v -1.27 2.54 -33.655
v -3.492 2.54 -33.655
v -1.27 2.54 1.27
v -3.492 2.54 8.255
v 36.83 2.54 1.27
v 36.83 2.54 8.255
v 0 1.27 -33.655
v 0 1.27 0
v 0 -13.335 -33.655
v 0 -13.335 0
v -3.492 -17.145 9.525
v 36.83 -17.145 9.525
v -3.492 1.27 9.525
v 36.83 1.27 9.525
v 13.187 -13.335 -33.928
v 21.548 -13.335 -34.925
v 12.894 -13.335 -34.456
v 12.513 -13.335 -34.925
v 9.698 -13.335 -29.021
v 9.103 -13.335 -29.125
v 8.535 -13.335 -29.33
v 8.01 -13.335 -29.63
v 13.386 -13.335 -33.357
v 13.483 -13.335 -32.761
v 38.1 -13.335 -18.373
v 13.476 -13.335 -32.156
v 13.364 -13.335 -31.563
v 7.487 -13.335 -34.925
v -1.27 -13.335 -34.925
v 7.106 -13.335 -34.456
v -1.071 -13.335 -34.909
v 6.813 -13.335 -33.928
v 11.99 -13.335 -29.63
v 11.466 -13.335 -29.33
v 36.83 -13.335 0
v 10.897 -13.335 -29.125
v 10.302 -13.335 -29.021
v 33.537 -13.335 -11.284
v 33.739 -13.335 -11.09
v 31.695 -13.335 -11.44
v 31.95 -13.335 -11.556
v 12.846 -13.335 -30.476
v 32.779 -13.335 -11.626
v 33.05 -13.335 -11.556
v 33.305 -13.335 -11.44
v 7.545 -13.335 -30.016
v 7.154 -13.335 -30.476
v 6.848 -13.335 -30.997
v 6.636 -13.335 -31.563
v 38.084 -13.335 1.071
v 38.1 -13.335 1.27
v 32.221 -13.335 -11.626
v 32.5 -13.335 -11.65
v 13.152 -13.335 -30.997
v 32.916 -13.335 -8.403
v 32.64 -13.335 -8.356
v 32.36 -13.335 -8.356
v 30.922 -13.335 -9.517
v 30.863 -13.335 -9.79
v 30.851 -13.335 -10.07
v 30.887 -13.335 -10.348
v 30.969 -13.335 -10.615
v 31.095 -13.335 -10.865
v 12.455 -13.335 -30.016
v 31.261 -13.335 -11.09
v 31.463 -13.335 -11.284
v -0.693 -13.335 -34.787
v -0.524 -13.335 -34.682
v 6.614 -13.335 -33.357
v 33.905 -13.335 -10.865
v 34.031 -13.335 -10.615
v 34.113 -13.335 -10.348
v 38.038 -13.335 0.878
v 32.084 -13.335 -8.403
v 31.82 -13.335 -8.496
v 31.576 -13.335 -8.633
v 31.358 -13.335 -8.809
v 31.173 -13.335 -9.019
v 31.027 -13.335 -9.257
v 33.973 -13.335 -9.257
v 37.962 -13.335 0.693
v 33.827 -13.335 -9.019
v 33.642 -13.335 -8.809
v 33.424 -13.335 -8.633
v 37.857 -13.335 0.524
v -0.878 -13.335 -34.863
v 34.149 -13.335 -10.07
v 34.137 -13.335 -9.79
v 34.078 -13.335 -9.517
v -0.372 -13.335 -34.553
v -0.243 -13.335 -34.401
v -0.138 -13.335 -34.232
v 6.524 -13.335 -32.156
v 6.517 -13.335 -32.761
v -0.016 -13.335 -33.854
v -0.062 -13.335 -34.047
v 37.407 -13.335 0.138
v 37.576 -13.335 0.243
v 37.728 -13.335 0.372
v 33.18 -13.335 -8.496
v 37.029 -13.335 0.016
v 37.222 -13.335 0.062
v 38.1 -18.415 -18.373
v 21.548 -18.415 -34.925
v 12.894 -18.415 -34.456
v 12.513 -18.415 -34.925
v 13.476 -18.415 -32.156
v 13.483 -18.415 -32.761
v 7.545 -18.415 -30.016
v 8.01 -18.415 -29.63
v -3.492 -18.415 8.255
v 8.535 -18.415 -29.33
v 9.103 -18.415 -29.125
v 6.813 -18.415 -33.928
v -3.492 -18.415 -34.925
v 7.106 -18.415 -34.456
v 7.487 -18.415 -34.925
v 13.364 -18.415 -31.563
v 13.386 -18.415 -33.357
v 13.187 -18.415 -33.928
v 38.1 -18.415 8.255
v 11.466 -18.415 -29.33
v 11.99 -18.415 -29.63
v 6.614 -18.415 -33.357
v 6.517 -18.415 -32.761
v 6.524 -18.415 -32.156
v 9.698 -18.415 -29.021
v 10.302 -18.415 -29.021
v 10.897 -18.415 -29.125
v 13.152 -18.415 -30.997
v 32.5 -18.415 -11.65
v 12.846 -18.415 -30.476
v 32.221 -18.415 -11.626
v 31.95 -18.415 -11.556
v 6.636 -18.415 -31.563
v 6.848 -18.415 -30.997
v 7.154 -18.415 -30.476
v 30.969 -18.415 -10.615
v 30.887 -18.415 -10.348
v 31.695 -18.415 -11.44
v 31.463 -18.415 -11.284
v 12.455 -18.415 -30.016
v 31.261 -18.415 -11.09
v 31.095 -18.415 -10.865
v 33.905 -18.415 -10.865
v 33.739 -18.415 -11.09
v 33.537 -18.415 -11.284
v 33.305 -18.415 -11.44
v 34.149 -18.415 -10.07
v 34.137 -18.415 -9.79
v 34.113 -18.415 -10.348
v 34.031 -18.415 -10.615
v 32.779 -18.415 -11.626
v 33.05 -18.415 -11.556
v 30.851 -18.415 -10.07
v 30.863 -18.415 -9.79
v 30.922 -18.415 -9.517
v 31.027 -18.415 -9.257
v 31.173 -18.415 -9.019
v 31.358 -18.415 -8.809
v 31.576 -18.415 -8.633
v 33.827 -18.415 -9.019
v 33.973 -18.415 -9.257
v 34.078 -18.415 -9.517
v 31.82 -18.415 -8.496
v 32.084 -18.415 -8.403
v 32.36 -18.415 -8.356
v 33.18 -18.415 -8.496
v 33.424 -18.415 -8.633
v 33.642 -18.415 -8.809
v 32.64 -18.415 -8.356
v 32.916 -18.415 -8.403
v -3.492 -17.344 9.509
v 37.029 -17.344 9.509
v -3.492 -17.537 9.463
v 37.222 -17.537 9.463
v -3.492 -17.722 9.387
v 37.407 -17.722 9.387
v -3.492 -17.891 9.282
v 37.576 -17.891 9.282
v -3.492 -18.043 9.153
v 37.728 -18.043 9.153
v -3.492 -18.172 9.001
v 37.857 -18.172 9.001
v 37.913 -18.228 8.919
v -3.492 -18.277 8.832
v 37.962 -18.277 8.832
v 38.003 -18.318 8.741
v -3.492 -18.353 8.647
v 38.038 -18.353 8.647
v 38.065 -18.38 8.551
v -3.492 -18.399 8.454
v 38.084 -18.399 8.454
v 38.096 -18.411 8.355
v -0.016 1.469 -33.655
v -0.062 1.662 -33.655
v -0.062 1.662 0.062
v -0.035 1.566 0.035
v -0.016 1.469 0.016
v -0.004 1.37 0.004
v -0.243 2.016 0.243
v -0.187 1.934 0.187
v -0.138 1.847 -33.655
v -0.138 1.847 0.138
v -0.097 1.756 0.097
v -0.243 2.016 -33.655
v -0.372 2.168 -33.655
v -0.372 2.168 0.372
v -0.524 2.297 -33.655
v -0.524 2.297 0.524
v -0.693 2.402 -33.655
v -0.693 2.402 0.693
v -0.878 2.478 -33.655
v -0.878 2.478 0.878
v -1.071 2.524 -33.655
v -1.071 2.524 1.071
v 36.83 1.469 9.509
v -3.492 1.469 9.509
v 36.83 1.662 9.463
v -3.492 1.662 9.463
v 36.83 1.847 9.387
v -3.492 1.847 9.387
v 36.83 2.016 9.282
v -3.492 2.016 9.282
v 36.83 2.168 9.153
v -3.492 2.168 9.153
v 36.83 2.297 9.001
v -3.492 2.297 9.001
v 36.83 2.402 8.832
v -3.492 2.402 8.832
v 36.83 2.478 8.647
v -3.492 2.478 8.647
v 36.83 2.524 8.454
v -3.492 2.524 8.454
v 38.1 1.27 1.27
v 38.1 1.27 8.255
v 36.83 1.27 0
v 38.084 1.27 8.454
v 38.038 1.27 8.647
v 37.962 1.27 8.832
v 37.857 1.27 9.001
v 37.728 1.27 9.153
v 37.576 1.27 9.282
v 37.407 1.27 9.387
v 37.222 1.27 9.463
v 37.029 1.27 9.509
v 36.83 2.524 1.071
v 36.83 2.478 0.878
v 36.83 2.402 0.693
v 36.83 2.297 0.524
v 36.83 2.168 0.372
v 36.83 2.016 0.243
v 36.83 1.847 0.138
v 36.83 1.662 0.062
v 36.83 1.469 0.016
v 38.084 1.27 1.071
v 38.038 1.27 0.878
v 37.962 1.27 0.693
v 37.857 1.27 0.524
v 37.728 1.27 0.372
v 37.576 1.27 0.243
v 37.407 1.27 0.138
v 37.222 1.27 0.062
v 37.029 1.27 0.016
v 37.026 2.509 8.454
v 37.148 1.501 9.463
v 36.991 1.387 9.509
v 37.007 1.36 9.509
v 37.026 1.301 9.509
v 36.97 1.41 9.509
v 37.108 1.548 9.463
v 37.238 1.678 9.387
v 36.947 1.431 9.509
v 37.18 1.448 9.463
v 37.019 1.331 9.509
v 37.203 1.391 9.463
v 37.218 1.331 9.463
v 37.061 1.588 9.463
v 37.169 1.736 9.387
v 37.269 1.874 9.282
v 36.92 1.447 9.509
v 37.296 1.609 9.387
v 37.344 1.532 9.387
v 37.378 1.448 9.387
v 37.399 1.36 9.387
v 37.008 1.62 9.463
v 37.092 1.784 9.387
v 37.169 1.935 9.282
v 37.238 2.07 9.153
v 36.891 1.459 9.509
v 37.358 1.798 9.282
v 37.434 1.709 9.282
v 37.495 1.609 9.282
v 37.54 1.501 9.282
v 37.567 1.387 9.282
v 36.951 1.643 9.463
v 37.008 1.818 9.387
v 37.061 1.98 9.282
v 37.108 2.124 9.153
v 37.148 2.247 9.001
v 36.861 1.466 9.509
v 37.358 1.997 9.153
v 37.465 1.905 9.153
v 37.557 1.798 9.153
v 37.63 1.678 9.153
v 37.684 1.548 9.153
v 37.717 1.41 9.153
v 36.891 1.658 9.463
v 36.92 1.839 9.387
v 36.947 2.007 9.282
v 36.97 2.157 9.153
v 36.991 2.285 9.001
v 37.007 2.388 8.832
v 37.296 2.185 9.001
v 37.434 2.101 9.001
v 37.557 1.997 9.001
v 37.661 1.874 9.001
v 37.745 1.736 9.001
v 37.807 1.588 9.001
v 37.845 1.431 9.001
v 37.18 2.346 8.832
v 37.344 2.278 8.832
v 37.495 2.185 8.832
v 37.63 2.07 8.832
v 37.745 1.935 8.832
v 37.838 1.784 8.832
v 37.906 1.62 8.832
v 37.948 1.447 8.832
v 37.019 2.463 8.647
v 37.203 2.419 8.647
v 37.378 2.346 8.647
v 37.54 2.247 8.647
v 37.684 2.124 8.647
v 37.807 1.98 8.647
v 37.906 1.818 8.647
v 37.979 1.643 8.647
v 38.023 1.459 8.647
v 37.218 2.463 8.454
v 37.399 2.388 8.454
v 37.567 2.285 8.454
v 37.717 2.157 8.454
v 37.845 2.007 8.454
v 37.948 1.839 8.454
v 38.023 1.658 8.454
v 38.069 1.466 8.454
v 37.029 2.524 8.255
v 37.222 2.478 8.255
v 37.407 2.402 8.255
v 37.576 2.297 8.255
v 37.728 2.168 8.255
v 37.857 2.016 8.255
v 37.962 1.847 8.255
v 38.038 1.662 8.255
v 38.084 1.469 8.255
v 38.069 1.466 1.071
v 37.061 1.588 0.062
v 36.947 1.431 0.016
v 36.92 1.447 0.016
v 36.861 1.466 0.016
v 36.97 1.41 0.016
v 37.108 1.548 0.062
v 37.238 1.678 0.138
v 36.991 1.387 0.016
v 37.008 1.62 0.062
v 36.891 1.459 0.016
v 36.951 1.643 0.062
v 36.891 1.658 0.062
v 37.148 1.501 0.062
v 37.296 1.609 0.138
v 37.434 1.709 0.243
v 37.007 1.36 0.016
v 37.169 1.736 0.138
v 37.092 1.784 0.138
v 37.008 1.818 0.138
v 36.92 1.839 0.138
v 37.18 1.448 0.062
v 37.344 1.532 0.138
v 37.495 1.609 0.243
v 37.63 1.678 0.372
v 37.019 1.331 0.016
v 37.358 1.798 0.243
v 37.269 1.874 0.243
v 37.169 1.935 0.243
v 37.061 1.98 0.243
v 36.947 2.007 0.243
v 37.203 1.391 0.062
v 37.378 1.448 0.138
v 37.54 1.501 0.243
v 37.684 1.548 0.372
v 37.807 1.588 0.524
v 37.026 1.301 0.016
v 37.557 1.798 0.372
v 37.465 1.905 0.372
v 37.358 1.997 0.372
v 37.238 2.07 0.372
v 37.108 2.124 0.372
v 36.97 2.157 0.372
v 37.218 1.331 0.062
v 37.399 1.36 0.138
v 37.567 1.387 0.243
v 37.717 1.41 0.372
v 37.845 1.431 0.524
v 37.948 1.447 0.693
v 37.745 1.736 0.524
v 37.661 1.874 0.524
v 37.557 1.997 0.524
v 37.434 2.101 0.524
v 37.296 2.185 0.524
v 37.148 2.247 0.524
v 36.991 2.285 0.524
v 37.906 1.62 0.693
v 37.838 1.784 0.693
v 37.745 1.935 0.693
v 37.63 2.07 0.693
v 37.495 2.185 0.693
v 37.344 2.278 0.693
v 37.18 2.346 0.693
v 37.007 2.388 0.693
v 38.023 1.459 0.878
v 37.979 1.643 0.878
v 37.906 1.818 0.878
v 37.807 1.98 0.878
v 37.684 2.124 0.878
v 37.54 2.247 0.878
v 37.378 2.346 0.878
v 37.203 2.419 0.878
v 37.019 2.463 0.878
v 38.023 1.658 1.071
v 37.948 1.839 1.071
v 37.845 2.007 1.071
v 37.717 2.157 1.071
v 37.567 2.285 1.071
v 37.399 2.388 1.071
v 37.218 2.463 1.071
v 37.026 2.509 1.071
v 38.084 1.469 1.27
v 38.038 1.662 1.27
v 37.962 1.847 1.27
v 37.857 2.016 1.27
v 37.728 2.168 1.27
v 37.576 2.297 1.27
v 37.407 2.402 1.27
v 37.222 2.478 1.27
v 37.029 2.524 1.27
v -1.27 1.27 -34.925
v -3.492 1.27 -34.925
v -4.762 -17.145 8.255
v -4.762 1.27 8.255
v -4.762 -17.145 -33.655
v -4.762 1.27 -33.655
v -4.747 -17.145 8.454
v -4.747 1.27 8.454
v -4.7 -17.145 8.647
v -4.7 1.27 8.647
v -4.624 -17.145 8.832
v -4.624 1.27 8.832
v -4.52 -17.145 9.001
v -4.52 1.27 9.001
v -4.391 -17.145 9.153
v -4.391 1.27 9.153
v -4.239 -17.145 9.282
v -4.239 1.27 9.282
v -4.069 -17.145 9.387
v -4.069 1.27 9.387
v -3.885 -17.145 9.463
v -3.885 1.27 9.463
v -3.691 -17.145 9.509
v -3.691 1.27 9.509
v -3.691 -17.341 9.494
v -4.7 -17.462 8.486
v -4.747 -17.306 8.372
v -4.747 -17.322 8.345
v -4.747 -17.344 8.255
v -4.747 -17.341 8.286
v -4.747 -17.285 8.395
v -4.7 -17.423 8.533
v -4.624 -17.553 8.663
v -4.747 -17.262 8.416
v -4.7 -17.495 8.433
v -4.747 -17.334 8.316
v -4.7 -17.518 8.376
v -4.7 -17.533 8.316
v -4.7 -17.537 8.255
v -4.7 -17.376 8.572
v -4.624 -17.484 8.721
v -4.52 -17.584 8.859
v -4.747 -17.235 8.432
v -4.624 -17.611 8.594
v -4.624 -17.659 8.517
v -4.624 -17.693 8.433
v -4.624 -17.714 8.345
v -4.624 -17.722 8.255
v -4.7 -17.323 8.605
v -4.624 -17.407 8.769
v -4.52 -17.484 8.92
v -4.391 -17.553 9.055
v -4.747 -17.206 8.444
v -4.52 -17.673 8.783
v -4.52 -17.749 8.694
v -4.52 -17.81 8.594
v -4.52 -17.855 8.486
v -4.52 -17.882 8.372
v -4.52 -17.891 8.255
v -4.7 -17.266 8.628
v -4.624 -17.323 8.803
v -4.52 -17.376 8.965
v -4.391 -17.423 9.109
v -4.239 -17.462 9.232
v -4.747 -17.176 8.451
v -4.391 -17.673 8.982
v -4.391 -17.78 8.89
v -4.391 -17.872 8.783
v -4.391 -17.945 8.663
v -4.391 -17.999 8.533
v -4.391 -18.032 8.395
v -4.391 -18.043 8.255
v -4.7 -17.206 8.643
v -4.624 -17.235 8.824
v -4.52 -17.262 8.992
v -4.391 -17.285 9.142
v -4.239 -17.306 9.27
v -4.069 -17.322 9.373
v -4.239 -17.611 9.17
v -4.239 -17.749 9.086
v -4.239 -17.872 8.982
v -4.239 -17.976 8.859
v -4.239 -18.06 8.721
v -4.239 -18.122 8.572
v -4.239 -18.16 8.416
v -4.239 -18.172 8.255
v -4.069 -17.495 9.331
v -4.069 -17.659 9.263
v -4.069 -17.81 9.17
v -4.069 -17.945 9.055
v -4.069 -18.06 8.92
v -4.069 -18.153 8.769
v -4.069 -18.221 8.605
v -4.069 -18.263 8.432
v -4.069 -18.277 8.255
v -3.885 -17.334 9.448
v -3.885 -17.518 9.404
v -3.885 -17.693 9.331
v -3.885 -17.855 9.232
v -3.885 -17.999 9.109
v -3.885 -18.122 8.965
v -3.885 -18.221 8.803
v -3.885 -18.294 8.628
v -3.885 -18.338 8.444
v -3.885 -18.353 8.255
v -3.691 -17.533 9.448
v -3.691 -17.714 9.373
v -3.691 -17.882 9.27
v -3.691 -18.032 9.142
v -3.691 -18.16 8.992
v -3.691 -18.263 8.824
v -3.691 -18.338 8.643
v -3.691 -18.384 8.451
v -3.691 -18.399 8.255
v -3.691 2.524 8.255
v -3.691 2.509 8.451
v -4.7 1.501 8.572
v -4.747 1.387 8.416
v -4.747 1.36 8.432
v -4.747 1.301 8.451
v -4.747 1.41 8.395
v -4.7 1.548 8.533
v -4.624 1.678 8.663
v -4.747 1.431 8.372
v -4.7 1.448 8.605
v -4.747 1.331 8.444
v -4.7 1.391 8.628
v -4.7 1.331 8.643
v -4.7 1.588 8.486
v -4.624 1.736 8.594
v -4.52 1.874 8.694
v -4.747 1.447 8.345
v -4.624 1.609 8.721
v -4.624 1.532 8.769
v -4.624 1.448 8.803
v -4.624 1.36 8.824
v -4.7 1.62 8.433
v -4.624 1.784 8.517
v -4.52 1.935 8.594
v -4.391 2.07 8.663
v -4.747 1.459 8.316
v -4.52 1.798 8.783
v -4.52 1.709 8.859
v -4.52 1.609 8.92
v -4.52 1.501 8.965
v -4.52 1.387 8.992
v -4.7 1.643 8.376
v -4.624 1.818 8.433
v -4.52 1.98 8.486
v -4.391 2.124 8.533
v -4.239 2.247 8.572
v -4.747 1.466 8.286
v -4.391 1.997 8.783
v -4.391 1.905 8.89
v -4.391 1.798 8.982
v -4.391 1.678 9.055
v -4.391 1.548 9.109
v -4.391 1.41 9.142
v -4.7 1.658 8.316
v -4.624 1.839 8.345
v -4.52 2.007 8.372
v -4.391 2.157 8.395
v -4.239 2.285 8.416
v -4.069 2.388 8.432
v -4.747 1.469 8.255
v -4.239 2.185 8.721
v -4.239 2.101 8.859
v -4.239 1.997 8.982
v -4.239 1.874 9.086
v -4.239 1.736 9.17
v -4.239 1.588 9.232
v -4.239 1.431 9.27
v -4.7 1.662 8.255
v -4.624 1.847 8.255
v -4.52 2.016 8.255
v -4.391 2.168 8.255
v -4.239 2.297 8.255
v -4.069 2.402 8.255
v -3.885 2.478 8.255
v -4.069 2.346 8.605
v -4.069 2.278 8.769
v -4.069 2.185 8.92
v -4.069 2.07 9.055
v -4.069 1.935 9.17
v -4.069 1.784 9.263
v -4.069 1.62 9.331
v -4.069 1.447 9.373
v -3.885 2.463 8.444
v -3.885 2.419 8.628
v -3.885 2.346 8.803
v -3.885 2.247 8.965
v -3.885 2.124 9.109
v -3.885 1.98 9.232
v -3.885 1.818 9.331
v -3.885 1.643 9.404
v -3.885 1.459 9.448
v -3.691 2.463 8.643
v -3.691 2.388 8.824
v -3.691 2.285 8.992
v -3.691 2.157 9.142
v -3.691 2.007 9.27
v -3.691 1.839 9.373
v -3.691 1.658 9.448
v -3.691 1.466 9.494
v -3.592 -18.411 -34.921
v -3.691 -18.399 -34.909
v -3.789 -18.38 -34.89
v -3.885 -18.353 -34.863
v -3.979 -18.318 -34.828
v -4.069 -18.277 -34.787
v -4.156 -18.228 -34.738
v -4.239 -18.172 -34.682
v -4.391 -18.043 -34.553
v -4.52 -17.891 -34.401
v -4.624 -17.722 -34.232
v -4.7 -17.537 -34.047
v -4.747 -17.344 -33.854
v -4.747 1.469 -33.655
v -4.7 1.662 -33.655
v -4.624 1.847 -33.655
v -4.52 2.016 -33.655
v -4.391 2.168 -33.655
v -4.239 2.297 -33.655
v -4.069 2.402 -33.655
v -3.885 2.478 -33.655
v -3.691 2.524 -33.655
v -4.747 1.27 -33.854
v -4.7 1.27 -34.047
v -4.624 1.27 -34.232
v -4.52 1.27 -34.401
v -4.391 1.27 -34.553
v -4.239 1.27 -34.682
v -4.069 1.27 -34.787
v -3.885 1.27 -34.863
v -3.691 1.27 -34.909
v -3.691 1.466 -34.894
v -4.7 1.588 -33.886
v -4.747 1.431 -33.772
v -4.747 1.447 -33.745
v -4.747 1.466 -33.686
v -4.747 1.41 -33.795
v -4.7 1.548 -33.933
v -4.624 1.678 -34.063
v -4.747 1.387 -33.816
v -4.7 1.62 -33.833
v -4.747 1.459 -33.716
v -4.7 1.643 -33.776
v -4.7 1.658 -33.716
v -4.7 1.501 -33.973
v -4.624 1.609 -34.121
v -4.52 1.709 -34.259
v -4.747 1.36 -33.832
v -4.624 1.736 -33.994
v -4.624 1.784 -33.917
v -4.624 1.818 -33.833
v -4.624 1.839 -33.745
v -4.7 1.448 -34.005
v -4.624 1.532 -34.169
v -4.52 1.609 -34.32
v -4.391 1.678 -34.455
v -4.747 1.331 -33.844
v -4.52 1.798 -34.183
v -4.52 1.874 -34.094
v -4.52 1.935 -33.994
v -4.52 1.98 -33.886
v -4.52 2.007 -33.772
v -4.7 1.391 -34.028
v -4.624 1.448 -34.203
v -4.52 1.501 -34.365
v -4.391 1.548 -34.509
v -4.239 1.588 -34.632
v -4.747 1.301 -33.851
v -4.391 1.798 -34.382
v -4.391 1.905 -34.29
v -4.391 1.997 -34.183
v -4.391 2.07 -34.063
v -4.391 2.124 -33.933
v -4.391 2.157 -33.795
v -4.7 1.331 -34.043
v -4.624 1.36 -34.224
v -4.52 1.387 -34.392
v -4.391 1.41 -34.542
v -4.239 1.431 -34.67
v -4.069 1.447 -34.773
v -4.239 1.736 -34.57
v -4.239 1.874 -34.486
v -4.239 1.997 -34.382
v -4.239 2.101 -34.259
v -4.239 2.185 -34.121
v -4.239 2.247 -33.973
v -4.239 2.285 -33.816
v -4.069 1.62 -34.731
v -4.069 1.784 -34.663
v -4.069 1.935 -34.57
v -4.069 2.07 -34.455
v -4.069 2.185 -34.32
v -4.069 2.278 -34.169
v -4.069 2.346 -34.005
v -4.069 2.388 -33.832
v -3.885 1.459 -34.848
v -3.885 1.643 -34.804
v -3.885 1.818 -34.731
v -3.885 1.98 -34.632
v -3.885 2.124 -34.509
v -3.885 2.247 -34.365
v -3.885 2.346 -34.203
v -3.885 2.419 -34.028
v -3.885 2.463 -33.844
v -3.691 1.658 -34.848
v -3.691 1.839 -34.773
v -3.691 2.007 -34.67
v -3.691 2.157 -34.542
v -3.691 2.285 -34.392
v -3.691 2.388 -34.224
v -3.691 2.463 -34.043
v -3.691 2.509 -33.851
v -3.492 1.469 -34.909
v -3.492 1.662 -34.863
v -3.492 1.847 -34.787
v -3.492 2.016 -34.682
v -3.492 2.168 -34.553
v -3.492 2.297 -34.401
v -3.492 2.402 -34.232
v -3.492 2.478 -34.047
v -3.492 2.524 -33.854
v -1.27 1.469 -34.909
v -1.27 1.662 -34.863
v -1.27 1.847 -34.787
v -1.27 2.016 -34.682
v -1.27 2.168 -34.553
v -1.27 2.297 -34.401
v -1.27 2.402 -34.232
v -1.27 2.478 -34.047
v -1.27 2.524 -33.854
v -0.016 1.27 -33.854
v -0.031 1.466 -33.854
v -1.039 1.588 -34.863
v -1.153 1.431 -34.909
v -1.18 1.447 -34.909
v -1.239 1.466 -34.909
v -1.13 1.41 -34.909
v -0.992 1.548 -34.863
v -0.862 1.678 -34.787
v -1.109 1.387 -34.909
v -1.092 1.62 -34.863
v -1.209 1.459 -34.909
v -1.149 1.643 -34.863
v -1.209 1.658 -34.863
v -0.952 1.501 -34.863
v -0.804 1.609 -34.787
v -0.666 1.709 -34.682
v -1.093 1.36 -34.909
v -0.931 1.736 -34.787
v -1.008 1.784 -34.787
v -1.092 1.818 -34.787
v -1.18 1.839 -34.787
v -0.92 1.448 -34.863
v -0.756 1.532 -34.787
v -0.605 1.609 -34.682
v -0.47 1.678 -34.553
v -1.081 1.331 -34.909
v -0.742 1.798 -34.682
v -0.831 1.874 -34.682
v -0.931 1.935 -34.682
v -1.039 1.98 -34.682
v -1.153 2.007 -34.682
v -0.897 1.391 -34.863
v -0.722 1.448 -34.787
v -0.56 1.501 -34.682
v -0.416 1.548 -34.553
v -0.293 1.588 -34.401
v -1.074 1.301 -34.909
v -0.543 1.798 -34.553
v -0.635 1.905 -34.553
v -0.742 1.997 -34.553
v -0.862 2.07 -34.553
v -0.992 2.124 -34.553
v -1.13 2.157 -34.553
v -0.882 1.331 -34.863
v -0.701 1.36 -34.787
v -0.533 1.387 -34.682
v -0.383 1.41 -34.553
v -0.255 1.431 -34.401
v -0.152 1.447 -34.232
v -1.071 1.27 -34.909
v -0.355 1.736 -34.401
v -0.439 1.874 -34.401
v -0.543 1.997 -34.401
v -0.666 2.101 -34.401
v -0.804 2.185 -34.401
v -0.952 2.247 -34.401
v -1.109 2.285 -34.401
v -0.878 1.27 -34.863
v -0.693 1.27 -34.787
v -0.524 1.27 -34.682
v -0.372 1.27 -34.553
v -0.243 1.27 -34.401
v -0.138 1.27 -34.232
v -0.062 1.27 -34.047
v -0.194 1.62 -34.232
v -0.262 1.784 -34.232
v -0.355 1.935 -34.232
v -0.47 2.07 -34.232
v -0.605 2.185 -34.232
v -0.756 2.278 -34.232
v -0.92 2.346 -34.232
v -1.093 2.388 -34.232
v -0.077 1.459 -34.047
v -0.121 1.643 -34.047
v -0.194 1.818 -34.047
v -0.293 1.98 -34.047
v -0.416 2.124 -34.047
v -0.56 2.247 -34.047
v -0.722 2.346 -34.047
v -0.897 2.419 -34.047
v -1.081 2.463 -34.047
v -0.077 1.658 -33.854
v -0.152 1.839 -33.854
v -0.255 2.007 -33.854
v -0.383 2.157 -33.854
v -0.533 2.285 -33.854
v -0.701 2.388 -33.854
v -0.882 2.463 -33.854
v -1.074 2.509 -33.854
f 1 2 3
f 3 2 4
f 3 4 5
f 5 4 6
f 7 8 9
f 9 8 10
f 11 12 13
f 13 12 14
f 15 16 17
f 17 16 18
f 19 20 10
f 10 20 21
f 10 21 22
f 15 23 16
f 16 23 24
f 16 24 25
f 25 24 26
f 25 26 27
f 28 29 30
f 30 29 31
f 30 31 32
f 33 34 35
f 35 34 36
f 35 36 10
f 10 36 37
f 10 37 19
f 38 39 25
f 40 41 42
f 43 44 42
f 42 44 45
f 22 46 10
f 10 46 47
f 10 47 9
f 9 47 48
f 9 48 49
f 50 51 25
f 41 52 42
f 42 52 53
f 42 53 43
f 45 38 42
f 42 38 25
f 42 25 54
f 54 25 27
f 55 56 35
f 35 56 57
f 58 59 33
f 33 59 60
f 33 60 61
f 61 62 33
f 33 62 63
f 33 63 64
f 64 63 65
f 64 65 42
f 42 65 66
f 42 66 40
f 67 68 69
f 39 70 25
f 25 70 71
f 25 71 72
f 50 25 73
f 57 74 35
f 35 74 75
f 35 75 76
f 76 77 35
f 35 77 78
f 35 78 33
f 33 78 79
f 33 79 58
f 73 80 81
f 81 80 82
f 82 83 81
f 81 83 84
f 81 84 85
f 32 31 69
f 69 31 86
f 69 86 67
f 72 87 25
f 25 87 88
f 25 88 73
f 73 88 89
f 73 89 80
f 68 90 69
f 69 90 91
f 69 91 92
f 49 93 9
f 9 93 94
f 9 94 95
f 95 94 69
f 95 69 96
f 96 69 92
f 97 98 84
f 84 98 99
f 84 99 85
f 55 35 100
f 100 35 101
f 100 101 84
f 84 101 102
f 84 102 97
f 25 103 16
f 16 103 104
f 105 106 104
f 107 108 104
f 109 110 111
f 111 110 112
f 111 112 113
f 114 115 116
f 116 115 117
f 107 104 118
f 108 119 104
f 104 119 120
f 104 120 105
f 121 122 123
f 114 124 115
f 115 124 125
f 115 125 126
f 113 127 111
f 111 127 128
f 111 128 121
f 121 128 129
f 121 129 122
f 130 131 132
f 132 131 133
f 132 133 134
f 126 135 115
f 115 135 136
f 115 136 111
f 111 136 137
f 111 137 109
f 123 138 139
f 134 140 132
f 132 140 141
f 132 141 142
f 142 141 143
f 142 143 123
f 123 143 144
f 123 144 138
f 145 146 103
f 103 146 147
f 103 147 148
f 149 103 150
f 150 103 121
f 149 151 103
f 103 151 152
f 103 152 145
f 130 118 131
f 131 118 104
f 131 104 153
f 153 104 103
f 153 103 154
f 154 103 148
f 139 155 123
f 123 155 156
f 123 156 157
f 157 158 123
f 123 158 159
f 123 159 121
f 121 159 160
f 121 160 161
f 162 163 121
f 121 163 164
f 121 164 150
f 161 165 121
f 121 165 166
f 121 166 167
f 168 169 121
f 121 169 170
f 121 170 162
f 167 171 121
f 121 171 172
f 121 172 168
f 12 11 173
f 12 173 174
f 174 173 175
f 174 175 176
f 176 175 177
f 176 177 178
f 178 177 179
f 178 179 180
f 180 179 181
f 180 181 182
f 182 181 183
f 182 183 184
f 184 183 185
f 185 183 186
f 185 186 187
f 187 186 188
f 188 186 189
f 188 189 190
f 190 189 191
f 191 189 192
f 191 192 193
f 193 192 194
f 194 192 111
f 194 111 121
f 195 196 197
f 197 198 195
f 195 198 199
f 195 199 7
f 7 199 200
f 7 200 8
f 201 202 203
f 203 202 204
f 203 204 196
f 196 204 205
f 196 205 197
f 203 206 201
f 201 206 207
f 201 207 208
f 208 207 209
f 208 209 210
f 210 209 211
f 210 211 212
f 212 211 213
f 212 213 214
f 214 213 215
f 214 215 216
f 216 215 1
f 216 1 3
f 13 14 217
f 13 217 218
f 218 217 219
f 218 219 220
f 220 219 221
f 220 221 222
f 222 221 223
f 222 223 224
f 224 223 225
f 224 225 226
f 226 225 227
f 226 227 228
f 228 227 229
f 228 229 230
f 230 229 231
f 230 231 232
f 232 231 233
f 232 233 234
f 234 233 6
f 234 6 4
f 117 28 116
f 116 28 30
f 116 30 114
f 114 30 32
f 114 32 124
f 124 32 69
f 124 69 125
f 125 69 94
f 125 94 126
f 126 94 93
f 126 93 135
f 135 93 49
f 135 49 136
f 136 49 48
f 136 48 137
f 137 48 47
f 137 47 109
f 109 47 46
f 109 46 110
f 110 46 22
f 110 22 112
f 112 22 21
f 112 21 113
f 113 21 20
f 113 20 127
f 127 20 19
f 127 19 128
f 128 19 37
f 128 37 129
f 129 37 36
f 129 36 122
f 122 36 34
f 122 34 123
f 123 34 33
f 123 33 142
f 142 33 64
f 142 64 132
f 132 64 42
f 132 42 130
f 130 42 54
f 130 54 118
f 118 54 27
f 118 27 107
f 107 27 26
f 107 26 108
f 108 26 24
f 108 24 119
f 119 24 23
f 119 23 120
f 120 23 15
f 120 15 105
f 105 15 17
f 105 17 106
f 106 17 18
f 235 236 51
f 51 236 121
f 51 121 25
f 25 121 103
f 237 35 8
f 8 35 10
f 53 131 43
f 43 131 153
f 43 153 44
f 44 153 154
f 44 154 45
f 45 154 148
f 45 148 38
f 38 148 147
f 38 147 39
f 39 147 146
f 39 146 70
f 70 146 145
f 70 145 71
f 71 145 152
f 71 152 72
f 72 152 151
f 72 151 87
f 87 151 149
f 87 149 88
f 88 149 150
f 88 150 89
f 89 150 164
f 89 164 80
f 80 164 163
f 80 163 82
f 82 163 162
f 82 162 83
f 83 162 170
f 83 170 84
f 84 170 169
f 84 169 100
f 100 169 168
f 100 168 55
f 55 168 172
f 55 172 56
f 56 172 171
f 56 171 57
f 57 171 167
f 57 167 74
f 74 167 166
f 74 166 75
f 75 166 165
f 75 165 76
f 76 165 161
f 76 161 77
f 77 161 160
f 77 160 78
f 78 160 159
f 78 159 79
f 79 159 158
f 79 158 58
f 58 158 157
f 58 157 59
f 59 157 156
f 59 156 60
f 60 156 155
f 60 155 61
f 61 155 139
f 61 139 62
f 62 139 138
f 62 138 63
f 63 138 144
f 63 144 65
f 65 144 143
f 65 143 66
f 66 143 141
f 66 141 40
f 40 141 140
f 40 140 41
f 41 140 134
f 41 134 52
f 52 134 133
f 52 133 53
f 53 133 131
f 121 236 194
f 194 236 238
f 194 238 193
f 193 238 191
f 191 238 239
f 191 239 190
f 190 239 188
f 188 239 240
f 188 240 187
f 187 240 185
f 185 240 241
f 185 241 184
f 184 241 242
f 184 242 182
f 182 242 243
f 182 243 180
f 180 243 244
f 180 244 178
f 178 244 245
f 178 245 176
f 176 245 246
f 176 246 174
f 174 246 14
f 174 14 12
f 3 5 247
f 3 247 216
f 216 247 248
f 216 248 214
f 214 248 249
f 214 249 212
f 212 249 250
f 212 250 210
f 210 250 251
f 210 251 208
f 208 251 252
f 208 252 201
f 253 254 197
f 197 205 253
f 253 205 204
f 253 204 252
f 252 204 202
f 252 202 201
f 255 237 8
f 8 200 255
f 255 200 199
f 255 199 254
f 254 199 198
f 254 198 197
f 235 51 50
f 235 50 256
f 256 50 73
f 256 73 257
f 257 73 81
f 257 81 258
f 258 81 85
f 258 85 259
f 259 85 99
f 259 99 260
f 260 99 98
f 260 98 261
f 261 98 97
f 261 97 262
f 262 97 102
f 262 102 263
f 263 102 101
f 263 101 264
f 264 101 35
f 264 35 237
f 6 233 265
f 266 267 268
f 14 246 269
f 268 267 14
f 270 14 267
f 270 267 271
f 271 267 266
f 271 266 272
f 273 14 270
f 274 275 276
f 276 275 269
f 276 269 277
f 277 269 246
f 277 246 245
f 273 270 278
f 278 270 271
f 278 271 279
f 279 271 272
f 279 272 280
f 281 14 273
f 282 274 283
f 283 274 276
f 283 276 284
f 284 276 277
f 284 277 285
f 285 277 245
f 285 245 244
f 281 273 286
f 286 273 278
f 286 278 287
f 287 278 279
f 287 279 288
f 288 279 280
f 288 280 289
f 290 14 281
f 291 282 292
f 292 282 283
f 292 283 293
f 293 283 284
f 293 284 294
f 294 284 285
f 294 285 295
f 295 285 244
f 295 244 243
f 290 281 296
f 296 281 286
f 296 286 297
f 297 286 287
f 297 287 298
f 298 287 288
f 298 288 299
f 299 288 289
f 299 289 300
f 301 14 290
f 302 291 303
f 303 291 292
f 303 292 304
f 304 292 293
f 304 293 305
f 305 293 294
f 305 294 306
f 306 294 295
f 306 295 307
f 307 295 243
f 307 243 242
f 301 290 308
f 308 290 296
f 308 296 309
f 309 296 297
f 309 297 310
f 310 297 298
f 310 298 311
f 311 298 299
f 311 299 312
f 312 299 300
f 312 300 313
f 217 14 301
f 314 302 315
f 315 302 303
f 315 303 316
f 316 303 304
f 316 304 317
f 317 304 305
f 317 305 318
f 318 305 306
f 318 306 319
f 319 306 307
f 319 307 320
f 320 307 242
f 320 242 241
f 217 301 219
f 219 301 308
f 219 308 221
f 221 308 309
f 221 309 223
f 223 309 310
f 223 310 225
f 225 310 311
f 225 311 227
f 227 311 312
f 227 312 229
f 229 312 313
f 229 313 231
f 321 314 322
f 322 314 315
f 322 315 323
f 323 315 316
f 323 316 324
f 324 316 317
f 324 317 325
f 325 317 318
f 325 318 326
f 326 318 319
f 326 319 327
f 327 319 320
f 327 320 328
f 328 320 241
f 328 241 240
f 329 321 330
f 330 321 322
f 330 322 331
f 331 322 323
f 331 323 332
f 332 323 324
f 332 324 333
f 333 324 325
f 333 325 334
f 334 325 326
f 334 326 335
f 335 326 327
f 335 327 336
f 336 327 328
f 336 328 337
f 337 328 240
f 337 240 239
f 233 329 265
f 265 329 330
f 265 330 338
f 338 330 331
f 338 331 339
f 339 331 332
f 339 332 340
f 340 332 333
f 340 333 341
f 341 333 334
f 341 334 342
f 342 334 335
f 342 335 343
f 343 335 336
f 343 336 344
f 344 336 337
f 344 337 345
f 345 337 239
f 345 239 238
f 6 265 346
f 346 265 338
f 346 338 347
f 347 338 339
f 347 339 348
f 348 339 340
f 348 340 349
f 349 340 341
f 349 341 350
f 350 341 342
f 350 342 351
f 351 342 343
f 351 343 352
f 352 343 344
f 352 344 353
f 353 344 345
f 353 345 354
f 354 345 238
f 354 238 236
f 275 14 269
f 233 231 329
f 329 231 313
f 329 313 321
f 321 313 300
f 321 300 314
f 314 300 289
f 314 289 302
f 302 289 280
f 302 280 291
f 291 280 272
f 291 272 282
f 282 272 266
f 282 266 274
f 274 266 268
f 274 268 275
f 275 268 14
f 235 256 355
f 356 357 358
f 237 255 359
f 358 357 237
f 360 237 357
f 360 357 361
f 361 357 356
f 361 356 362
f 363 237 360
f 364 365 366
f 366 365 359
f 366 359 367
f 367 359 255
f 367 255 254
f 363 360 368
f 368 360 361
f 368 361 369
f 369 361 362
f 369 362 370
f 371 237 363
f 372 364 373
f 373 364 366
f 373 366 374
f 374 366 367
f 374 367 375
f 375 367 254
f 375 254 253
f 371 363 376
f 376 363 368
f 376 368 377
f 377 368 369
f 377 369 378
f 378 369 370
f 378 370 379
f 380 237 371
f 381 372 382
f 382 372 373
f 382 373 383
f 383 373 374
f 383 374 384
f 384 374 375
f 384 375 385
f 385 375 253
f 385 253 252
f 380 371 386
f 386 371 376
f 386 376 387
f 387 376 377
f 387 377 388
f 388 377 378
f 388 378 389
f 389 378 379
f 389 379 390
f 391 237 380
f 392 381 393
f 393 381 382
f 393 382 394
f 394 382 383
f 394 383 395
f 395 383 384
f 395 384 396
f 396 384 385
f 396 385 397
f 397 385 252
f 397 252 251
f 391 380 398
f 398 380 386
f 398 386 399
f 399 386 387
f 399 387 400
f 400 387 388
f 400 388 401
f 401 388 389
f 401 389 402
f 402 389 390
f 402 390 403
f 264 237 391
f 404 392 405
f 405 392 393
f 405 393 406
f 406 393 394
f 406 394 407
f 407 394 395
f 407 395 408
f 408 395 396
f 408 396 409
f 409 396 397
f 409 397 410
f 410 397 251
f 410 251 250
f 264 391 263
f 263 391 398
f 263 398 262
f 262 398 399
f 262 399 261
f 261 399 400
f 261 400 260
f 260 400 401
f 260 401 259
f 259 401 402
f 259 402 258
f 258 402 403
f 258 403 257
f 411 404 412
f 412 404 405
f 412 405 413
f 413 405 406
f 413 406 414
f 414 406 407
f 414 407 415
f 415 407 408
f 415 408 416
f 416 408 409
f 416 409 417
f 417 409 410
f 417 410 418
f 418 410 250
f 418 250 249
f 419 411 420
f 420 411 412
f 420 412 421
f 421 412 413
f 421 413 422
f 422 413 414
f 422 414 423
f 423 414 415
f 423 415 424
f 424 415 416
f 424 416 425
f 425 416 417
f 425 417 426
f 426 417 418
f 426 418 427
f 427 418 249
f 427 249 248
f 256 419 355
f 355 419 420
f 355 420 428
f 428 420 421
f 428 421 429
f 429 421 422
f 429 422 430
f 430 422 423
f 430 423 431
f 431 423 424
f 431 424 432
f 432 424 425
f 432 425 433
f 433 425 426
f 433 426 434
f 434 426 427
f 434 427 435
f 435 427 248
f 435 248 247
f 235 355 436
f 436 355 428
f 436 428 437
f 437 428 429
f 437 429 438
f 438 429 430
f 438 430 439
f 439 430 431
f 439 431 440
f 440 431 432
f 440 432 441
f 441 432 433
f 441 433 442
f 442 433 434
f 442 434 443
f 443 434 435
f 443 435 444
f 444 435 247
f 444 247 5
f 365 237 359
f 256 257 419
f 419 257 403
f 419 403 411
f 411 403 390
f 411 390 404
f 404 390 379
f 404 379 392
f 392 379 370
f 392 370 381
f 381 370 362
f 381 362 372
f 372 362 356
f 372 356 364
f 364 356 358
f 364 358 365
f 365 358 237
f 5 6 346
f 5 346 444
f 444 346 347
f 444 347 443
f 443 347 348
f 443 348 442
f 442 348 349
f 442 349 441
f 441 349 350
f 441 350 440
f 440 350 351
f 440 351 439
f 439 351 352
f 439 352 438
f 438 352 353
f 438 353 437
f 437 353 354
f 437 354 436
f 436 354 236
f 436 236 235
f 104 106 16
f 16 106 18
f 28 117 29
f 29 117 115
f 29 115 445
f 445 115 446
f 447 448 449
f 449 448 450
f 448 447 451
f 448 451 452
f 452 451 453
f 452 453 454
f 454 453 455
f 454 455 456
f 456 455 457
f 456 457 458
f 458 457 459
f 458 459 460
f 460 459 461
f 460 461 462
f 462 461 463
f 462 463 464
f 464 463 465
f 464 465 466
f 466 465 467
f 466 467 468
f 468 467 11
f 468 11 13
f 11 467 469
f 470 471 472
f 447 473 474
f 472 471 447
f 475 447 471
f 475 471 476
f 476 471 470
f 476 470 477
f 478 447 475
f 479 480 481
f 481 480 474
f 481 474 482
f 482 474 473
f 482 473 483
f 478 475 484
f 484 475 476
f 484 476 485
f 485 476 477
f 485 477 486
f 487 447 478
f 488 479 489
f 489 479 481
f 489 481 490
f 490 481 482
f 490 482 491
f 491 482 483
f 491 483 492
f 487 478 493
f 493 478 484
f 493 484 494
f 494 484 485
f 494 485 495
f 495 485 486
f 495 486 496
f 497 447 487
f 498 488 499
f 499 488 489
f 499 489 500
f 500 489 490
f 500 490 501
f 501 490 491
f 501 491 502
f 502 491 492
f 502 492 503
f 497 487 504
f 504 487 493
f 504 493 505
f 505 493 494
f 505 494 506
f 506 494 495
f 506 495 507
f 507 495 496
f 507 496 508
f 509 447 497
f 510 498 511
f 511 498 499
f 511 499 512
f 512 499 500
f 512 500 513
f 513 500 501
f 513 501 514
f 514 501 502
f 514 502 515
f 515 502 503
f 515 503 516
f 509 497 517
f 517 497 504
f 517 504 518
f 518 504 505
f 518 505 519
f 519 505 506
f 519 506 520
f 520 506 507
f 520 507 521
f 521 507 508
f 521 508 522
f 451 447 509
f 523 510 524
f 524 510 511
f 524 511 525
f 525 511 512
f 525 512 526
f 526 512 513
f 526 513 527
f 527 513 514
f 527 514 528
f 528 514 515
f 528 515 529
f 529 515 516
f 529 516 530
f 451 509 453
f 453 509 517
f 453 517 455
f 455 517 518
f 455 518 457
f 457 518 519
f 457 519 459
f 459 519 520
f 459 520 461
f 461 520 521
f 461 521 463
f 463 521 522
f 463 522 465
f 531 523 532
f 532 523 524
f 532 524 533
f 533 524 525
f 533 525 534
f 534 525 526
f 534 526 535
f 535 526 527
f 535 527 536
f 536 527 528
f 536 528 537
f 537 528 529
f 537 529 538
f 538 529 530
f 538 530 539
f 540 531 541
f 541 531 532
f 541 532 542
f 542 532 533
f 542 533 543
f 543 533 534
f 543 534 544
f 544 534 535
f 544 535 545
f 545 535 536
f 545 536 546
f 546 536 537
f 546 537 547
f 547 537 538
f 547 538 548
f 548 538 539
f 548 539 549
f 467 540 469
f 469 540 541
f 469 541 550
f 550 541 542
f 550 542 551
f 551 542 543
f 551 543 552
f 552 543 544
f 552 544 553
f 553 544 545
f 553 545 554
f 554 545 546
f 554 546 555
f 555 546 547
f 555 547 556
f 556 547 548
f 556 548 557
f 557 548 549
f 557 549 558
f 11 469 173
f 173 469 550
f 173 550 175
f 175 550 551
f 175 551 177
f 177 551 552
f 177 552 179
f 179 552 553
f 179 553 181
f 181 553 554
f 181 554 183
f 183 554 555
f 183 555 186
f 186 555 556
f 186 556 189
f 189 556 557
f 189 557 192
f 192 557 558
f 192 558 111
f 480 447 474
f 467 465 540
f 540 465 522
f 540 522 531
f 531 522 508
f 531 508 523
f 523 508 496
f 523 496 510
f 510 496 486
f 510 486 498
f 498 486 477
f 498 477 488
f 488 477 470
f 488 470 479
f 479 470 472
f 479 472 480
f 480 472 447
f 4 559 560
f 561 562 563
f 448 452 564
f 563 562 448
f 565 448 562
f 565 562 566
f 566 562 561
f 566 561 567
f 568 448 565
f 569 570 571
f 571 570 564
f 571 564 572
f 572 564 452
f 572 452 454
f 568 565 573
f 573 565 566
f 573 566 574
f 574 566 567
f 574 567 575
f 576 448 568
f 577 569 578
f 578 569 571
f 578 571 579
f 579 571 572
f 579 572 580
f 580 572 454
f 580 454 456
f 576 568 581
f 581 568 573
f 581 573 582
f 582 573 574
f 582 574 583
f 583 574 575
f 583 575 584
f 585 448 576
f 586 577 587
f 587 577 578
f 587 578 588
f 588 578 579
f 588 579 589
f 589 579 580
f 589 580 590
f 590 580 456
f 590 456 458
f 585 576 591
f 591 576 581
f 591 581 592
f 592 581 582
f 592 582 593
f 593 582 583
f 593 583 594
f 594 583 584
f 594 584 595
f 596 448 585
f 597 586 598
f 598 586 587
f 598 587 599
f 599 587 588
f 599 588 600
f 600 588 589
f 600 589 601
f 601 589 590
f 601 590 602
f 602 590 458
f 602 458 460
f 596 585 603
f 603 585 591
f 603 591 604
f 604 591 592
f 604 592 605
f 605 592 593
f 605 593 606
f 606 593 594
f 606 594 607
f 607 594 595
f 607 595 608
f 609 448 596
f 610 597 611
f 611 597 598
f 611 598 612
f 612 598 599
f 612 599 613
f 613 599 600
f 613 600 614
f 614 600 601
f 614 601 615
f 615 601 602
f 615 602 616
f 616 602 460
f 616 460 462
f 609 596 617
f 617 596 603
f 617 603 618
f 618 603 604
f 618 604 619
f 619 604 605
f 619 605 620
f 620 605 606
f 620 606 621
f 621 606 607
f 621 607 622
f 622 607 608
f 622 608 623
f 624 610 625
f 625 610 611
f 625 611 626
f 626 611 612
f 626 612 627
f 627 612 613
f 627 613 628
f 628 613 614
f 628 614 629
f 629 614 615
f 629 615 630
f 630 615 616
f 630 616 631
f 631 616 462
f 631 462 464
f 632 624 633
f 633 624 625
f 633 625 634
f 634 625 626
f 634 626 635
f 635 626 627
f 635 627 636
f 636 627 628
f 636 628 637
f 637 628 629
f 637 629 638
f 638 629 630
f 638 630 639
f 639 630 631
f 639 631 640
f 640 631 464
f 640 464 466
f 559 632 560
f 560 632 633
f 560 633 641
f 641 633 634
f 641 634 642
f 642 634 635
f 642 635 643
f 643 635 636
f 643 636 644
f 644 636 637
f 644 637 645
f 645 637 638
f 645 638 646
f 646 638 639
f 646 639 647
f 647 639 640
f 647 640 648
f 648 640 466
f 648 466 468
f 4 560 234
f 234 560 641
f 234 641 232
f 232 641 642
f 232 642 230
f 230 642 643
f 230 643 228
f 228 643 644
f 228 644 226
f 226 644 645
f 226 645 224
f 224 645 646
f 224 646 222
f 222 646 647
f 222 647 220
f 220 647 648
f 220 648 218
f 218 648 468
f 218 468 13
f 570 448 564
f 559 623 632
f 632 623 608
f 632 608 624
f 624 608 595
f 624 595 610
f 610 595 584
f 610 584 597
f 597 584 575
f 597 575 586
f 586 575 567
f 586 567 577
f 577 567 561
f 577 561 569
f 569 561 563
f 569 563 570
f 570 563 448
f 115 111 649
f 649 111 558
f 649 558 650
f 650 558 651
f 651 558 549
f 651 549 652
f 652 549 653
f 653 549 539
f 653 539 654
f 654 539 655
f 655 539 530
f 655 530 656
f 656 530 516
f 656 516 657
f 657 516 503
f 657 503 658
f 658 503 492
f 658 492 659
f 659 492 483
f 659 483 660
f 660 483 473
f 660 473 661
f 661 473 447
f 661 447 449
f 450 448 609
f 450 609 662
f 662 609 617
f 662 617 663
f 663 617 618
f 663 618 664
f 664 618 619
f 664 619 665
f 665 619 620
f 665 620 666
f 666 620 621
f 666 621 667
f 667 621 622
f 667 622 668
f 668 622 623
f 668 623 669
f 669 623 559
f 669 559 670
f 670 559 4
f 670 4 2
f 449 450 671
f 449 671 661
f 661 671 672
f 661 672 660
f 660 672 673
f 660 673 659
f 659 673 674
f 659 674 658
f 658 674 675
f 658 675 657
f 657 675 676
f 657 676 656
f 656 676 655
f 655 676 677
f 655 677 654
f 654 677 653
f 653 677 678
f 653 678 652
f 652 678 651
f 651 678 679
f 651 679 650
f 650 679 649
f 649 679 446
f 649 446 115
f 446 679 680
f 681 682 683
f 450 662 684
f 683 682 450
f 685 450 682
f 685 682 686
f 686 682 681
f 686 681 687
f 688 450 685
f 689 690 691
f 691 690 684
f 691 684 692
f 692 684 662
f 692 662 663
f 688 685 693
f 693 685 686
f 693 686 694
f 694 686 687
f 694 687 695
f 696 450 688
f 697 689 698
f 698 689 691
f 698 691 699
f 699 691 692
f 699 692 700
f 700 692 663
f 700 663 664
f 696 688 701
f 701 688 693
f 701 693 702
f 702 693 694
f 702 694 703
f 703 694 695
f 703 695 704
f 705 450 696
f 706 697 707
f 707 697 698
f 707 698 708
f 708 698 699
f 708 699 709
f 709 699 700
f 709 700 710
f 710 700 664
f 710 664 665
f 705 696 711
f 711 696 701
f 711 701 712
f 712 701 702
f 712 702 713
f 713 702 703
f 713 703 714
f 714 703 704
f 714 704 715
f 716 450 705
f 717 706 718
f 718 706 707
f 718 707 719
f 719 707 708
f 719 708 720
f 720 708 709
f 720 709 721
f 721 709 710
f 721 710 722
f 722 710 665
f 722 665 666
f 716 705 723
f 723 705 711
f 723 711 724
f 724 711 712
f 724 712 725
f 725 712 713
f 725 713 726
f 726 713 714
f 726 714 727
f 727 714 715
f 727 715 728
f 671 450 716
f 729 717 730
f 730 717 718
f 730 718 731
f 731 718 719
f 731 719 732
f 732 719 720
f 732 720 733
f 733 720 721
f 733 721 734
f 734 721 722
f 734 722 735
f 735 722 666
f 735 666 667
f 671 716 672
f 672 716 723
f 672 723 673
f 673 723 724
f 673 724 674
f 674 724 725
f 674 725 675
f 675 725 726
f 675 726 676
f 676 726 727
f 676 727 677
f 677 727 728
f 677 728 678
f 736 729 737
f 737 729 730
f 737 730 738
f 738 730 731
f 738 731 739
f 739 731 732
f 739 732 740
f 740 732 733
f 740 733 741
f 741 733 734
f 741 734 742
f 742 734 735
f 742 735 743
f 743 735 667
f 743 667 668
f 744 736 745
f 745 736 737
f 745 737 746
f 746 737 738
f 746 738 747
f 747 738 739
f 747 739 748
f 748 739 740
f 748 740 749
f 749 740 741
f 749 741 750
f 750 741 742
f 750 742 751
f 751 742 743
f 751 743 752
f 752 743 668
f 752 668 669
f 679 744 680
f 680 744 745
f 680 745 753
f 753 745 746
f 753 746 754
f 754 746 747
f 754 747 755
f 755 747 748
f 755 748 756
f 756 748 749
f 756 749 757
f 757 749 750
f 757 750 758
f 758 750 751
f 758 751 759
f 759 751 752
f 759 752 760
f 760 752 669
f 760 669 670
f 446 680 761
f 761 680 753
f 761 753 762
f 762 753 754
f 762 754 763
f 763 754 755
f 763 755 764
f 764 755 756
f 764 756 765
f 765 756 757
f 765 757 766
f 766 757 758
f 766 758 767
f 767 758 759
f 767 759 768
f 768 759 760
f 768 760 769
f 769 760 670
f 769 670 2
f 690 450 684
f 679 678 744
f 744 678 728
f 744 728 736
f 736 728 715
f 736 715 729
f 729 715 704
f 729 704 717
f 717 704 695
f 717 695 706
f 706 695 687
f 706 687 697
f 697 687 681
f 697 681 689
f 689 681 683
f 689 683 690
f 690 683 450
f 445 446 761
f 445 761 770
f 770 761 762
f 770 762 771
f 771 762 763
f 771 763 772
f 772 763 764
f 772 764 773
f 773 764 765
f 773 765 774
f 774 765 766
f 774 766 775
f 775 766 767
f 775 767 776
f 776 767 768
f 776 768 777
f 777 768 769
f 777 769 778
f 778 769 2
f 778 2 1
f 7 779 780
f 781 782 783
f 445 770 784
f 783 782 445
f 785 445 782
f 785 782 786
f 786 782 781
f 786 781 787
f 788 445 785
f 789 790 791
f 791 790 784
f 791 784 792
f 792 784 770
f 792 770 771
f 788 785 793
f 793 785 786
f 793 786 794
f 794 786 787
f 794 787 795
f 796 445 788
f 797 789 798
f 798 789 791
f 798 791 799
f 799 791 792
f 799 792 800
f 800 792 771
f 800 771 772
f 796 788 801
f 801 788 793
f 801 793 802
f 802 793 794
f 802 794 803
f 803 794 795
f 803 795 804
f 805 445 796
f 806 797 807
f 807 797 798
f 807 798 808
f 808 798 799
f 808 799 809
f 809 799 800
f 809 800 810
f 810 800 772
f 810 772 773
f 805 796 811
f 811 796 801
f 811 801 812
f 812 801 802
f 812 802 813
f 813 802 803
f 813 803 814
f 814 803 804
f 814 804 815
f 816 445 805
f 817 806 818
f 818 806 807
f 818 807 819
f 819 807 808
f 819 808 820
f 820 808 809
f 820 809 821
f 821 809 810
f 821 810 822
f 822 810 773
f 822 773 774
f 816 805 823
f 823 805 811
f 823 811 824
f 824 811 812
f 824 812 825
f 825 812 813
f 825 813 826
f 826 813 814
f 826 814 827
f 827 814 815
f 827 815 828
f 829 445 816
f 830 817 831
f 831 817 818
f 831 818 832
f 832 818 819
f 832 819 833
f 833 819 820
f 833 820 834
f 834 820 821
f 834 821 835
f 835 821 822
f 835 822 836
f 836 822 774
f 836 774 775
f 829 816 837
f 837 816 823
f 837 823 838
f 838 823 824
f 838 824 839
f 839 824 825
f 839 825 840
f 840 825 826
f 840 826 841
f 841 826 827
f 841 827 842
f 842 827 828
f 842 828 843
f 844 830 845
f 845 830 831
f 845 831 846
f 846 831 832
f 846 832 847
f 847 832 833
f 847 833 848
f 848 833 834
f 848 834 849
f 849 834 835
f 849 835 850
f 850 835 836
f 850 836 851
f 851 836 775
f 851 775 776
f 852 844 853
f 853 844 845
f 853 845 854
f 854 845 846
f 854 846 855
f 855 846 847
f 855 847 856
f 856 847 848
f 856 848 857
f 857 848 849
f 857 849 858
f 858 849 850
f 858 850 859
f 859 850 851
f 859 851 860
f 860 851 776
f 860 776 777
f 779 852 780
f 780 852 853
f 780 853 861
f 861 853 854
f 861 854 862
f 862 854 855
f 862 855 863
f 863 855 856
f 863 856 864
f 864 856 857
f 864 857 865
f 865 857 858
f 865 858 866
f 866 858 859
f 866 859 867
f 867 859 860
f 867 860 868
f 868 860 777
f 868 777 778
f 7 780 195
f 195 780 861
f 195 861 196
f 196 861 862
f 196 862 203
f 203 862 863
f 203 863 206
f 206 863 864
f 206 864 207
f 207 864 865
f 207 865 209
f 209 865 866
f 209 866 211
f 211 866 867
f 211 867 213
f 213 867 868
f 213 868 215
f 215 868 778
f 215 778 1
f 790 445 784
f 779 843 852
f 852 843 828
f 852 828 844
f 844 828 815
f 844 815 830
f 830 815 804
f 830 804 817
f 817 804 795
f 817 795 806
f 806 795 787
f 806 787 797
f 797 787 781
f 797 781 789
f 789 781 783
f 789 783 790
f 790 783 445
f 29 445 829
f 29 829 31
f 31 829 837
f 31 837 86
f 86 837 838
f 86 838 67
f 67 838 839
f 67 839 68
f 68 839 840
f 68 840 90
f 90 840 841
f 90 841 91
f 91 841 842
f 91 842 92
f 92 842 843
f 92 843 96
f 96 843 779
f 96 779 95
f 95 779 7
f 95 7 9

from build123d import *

# Parameters (mm, degrees)
BOSS_EXTRUDE1_DEPTH      = 2.54
SKETCH2_W                = 9.525
SKETCH2_H                = 38.1
BOSS_EXTRUDE2_DEPTH      = 15.875
BOSS_EXTRUDE3_DEPTH      = 5.08
M3_CLEARANCE_HOLE1_D     = 3.3
M3_CLEARANCE_HOLE1_DEPTH = 12.7
M3_CLEARANCE_HOLE1_TIP   = 0.991420021
SKETCH7_W                = 35.71875
SKETCH7_H                = 2.38125
CUT_EXTRUDE1_DEPTH       = 2.54
FILLET1_R                = 1.27
SKETCH8_R                = 3.4925
CUT_EXTRUDE2_DEPTH       = 10.16
CUT_EXTRUDE3_DEPTH       = 57.171484091
CUT_EXTRUDE3_DEPTH_BACK  = 57.171484091
SKETCH9_W                = 10.431111816
SKETCH9_H                = 47.706198334
FILLET3_R                = 1.27


with BuildPart() as part:
    # Sketch1 → Boss-Extrude1 (new body)
    with BuildSketch(Plane(origin=(0, 0, 0), x_dir=(1, 0, 0), z_dir=(0, 1, 0))):
        Polygon((0, 0), (38.1, 0), (38.1, 2.38125), (2.38125, 2.38125), (2.38125, 38.1), (0, 38.1), align=None)
    extrude(amount=BOSS_EXTRUDE1_DEPTH)

    # Sketch2 → Boss-Extrude2 (add)
    with BuildSketch(Plane(origin=(0, 2.54, 0), x_dir=(1, 0, 0), z_dir=(0, 1, 0))):
        with Locations((-4.7625, 19.05)):
            Rectangle(SKETCH2_W, SKETCH2_H)
        Polygon((0, 0), (-9.525, 0), (-9.525, -9.525), (38.1, -9.525), (38.1, 0), align=None)
    extrude(amount=-BOSS_EXTRUDE2_DEPTH)

    # Sketch3 → Boss-Extrude3 (add)
    with BuildSketch(Plane(origin=(0, -13.335, 0), x_dir=(-1, 0, 0), z_dir=(0, -1, 0))):
        Polygon((9.525, -9.525), (-38.1, -9.525), (-38.1, 18.373079092), (-18.373079092, 38.1), (9.525, 38.1), align=None)
    extrude(amount=BOSS_EXTRUDE3_DEPTH)

    # M3 Clearance Hole1
    with Locations(Plane(origin=(0, -18.415, 0), x_dir=(-1, 0, 0), z_dir=(0, -1, 0))):
        with Locations((-10, 32.5), (-32.5, 10)):
            Hole(M3_CLEARANCE_HOLE1_D / 2, depth=M3_CLEARANCE_HOLE1_DEPTH)
            with Locations((0, 0, -(M3_CLEARANCE_HOLE1_DEPTH + M3_CLEARANCE_HOLE1_TIP / 2))):  # 118° drill point
                Cone(0, M3_CLEARANCE_HOLE1_D / 2, M3_CLEARANCE_HOLE1_TIP, mode=Mode.SUBTRACT)

    # Sketch7 → Cut-Extrude1 (cut)
    with BuildSketch(Plane(origin=(0, 2.54, 0), x_dir=(1, 0, 0), z_dir=(0, 1, 0))):
        with Locations((20.240625, 1.190625)):
            Rectangle(SKETCH7_W, SKETCH7_H)
        Polygon((0, 0), (2.38125, 0), (2.38125, 2.38125), (2.38125, 38.1), (0, 38.1), align=None)
    extrude(amount=-CUT_EXTRUDE1_DEPTH, mode=Mode.SUBTRACT)

    # Fillet1
    fillet1_edges = [part.edges().sort_by_distance(p)[0] for p in [
        (38.1, 2.54, 4.7625),
        (0, -5.3975, -38.1),
        (-9.525, -7.9375, -38.1),
        (38.1, -5.3975, 0),
        (14.2875, 2.54, 9.525),
        (38.1, -7.9375, 9.525),
        (-9.525, -7.9375, 9.525),
        (-9.525, 2.54, -14.2875),
        (-9.525, -18.415, -14.2875),
        (14.2875, -18.415, 9.525),
        (-4.7625, 2.54, -38.1),
        (0, 2.54, -19.05),
        (19.05, 2.54, 0),
    ]]
    fillet(fillet1_edges, radius=FILLET1_R)

    # Sketch8 → Cut-Extrude2 (cut)
    with BuildSketch(Plane(origin=(0, -13.335, 0), x_dir=(1, 0, 0), z_dir=(0, 1, 0))):
        with Locations(Location((10, 32.5, 0), (0, 0, 270))):
            Circle(SKETCH8_R)
    extrude(amount=-CUT_EXTRUDE2_DEPTH, mode=Mode.SUBTRACT)

    # Sketch9 → Cut-Extrude3 (cut, two sides: drawn at the far end of the back side and taken through both)
    with BuildSketch(Plane(origin=(0, -13.335, 0), x_dir=(1, 0, 0), z_dir=(0, 1, 0)).offset(-CUT_EXTRUDE3_DEPTH_BACK)):
        with Locations((-9.978055908, 11.071900833)):
            Rectangle(SKETCH9_W, SKETCH9_H)
        Polygon((25.888370715, 34.925), (25.888370715, 38.1), (18.373079092, 38.1), (21.548079092, 34.925), align=None)
        with BuildLine():
            Line((21.548079092, 34.925), (18.373079092, 38.1))
            Line((18.373079092, 38.1), (-1.27, 38.1))
            ThreePointArc((-1.27, 38.1), (-0.371974388, 37.728025612), (0, 36.83))
            Line((0, 36.83), (0, 34.925))
            Line((0, 34.925), (7.486649398, 34.925))
            ThreePointArc((7.486649398, 34.925), (10, 35.9925), (12.513350602, 34.925))
            Line((12.513350602, 34.925), (21.548079092, 34.925))
        make_face()
        with BuildLine():
            ThreePointArc((0, 36.83), (-0.371974388, 37.728025612), (-1.27, 38.1))
            Line((-1.27, 38.1), (-15.193611816, 38.1))
            Line((-15.193611816, 38.1), (-15.193611816, 34.925))
            Line((-15.193611816, 34.925), (-4.7625, 34.925))
            Line((-4.7625, 34.925), (0, 34.925))
            Line((0, 34.925), (0, 36.83))
        make_face()
    extrude(amount=CUT_EXTRUDE3_DEPTH + CUT_EXTRUDE3_DEPTH_BACK, mode=Mode.SUBTRACT)

    # Fillet3
    fillet3_edges = [part.edges().sort_by_distance(p)[0] for p in [
        (-4.7625, 2.168025612, 9.153025612),
        (-4.7625, -7.9375, 9.525),
        (-0.371974388, 2.168025612, -34.925),
        (-3.01625, 2.54, -34.925),
        (-4.7625, -18.415, -13.335),
        (0, -6.0325, -34.925),
        (-4.7625, -18.043025612, 9.153025612),
        (-4.7625, -7.9375, -34.925),
        (-4.7625, 2.54, -13.335),
    ]]
    fillet(fillet3_edges, radius=FILLET3_R)


solid = part.part
